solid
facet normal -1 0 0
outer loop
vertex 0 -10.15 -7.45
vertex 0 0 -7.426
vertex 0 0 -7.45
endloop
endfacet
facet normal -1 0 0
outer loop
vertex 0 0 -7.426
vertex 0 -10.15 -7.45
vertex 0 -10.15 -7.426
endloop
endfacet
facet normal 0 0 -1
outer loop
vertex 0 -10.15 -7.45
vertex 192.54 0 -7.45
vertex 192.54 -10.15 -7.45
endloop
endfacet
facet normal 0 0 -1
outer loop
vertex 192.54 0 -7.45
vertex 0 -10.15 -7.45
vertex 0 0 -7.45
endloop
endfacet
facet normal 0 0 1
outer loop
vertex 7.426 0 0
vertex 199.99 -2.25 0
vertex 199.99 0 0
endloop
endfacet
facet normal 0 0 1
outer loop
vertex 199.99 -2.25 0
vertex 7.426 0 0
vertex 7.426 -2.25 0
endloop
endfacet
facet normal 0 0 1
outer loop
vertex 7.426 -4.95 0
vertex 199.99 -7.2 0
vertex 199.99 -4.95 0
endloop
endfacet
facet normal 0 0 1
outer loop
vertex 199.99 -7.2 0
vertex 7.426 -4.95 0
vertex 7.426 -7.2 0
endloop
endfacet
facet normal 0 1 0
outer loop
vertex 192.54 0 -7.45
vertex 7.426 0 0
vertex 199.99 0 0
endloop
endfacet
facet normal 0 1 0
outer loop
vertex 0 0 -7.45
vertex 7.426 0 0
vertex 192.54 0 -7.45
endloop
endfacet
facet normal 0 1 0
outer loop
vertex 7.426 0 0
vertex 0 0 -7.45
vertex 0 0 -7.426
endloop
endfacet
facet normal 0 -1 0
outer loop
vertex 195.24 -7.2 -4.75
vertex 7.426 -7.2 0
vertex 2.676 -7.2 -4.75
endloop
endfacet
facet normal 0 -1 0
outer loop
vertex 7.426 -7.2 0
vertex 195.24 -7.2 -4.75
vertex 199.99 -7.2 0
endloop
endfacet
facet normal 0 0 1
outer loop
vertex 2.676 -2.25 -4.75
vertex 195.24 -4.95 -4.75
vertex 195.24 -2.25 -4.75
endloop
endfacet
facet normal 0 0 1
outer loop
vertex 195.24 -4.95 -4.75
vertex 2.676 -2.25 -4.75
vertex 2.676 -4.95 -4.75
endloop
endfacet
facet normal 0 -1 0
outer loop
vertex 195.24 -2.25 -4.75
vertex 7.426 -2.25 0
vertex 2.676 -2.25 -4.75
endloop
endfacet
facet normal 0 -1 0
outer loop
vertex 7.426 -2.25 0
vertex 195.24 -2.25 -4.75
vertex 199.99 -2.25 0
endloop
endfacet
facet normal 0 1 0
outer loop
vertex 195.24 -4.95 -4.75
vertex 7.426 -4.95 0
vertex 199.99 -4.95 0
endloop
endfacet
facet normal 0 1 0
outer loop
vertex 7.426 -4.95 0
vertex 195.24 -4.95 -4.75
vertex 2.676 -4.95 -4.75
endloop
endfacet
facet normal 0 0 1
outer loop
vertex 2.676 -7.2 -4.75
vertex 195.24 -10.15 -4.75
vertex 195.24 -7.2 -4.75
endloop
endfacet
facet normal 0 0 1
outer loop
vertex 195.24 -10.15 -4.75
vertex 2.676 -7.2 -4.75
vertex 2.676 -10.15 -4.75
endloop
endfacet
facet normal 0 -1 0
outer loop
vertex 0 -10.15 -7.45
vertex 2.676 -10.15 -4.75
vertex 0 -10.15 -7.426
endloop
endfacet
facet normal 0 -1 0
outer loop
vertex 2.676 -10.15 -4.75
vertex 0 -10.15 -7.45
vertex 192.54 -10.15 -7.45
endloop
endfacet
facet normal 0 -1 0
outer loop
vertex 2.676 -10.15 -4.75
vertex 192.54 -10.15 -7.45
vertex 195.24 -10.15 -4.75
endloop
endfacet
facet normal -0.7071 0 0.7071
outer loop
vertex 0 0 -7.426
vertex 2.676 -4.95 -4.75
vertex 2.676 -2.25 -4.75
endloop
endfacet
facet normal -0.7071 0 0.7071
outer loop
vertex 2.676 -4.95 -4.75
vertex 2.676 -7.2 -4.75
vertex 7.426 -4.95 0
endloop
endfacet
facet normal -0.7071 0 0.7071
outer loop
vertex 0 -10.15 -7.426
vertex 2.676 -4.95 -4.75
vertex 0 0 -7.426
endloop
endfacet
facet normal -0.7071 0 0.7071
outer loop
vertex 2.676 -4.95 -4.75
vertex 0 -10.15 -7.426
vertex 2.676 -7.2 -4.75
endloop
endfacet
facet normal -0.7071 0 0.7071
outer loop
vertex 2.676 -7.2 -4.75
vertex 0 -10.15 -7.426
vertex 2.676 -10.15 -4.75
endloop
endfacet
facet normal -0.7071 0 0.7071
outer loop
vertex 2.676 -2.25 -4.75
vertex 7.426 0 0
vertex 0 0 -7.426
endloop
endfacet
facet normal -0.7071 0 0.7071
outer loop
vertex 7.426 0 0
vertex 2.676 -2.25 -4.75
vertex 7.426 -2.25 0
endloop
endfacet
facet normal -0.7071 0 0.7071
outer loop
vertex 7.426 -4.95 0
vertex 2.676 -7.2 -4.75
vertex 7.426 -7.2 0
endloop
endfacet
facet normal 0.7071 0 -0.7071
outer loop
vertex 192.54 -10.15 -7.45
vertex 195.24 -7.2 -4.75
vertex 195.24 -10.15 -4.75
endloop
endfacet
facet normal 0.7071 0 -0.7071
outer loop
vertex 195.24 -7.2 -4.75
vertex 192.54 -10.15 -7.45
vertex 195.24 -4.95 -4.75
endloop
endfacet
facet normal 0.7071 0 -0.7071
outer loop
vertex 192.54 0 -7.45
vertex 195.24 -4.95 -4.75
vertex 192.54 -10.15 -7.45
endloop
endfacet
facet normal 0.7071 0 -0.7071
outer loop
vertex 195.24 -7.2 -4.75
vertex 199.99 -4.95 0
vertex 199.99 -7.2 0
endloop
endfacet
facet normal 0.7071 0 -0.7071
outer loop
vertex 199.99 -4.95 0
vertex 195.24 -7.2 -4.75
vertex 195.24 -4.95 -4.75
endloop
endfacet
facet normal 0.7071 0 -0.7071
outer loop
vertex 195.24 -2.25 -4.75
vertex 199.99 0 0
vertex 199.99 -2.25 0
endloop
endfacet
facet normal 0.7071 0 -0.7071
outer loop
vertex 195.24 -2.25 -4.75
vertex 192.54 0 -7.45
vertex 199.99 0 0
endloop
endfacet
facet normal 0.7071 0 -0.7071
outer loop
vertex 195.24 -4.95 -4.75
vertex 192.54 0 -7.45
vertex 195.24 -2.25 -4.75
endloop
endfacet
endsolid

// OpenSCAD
thickness = 2.70;
lip = 4.75;
coupler = 4.75;
coupleThickness = 2.25;
totThick = (coupleThickness * 2) + thickness;


rotate([180, 0, 0])   
    coupled(200);

module coupled(length) {
    difference(){ 
        union (){
            coupler(length);
            translate([0, thickness * 2, coupler]) {
                cube(size=[length, lip, thickness]);
            }
        }
        translate([-35,-5,0])
            rotate([0, 45, 0]) 
                #cube(size=[30, 30, 30]);
        
        translate([length - 7.46,-5,coupler + thickness])
            rotate([0, 45, 0]) 
                #cube(size=[30, 30, 30]);
    }
}


module coupler(length=10) {
    difference() {
        cube(size=[length, totThick, coupler + thickness]);
        translate([-5, coupleThickness, -thickness]) 
            cube(size=[length+10, thickness, coupler + thickness]);
    }
}
